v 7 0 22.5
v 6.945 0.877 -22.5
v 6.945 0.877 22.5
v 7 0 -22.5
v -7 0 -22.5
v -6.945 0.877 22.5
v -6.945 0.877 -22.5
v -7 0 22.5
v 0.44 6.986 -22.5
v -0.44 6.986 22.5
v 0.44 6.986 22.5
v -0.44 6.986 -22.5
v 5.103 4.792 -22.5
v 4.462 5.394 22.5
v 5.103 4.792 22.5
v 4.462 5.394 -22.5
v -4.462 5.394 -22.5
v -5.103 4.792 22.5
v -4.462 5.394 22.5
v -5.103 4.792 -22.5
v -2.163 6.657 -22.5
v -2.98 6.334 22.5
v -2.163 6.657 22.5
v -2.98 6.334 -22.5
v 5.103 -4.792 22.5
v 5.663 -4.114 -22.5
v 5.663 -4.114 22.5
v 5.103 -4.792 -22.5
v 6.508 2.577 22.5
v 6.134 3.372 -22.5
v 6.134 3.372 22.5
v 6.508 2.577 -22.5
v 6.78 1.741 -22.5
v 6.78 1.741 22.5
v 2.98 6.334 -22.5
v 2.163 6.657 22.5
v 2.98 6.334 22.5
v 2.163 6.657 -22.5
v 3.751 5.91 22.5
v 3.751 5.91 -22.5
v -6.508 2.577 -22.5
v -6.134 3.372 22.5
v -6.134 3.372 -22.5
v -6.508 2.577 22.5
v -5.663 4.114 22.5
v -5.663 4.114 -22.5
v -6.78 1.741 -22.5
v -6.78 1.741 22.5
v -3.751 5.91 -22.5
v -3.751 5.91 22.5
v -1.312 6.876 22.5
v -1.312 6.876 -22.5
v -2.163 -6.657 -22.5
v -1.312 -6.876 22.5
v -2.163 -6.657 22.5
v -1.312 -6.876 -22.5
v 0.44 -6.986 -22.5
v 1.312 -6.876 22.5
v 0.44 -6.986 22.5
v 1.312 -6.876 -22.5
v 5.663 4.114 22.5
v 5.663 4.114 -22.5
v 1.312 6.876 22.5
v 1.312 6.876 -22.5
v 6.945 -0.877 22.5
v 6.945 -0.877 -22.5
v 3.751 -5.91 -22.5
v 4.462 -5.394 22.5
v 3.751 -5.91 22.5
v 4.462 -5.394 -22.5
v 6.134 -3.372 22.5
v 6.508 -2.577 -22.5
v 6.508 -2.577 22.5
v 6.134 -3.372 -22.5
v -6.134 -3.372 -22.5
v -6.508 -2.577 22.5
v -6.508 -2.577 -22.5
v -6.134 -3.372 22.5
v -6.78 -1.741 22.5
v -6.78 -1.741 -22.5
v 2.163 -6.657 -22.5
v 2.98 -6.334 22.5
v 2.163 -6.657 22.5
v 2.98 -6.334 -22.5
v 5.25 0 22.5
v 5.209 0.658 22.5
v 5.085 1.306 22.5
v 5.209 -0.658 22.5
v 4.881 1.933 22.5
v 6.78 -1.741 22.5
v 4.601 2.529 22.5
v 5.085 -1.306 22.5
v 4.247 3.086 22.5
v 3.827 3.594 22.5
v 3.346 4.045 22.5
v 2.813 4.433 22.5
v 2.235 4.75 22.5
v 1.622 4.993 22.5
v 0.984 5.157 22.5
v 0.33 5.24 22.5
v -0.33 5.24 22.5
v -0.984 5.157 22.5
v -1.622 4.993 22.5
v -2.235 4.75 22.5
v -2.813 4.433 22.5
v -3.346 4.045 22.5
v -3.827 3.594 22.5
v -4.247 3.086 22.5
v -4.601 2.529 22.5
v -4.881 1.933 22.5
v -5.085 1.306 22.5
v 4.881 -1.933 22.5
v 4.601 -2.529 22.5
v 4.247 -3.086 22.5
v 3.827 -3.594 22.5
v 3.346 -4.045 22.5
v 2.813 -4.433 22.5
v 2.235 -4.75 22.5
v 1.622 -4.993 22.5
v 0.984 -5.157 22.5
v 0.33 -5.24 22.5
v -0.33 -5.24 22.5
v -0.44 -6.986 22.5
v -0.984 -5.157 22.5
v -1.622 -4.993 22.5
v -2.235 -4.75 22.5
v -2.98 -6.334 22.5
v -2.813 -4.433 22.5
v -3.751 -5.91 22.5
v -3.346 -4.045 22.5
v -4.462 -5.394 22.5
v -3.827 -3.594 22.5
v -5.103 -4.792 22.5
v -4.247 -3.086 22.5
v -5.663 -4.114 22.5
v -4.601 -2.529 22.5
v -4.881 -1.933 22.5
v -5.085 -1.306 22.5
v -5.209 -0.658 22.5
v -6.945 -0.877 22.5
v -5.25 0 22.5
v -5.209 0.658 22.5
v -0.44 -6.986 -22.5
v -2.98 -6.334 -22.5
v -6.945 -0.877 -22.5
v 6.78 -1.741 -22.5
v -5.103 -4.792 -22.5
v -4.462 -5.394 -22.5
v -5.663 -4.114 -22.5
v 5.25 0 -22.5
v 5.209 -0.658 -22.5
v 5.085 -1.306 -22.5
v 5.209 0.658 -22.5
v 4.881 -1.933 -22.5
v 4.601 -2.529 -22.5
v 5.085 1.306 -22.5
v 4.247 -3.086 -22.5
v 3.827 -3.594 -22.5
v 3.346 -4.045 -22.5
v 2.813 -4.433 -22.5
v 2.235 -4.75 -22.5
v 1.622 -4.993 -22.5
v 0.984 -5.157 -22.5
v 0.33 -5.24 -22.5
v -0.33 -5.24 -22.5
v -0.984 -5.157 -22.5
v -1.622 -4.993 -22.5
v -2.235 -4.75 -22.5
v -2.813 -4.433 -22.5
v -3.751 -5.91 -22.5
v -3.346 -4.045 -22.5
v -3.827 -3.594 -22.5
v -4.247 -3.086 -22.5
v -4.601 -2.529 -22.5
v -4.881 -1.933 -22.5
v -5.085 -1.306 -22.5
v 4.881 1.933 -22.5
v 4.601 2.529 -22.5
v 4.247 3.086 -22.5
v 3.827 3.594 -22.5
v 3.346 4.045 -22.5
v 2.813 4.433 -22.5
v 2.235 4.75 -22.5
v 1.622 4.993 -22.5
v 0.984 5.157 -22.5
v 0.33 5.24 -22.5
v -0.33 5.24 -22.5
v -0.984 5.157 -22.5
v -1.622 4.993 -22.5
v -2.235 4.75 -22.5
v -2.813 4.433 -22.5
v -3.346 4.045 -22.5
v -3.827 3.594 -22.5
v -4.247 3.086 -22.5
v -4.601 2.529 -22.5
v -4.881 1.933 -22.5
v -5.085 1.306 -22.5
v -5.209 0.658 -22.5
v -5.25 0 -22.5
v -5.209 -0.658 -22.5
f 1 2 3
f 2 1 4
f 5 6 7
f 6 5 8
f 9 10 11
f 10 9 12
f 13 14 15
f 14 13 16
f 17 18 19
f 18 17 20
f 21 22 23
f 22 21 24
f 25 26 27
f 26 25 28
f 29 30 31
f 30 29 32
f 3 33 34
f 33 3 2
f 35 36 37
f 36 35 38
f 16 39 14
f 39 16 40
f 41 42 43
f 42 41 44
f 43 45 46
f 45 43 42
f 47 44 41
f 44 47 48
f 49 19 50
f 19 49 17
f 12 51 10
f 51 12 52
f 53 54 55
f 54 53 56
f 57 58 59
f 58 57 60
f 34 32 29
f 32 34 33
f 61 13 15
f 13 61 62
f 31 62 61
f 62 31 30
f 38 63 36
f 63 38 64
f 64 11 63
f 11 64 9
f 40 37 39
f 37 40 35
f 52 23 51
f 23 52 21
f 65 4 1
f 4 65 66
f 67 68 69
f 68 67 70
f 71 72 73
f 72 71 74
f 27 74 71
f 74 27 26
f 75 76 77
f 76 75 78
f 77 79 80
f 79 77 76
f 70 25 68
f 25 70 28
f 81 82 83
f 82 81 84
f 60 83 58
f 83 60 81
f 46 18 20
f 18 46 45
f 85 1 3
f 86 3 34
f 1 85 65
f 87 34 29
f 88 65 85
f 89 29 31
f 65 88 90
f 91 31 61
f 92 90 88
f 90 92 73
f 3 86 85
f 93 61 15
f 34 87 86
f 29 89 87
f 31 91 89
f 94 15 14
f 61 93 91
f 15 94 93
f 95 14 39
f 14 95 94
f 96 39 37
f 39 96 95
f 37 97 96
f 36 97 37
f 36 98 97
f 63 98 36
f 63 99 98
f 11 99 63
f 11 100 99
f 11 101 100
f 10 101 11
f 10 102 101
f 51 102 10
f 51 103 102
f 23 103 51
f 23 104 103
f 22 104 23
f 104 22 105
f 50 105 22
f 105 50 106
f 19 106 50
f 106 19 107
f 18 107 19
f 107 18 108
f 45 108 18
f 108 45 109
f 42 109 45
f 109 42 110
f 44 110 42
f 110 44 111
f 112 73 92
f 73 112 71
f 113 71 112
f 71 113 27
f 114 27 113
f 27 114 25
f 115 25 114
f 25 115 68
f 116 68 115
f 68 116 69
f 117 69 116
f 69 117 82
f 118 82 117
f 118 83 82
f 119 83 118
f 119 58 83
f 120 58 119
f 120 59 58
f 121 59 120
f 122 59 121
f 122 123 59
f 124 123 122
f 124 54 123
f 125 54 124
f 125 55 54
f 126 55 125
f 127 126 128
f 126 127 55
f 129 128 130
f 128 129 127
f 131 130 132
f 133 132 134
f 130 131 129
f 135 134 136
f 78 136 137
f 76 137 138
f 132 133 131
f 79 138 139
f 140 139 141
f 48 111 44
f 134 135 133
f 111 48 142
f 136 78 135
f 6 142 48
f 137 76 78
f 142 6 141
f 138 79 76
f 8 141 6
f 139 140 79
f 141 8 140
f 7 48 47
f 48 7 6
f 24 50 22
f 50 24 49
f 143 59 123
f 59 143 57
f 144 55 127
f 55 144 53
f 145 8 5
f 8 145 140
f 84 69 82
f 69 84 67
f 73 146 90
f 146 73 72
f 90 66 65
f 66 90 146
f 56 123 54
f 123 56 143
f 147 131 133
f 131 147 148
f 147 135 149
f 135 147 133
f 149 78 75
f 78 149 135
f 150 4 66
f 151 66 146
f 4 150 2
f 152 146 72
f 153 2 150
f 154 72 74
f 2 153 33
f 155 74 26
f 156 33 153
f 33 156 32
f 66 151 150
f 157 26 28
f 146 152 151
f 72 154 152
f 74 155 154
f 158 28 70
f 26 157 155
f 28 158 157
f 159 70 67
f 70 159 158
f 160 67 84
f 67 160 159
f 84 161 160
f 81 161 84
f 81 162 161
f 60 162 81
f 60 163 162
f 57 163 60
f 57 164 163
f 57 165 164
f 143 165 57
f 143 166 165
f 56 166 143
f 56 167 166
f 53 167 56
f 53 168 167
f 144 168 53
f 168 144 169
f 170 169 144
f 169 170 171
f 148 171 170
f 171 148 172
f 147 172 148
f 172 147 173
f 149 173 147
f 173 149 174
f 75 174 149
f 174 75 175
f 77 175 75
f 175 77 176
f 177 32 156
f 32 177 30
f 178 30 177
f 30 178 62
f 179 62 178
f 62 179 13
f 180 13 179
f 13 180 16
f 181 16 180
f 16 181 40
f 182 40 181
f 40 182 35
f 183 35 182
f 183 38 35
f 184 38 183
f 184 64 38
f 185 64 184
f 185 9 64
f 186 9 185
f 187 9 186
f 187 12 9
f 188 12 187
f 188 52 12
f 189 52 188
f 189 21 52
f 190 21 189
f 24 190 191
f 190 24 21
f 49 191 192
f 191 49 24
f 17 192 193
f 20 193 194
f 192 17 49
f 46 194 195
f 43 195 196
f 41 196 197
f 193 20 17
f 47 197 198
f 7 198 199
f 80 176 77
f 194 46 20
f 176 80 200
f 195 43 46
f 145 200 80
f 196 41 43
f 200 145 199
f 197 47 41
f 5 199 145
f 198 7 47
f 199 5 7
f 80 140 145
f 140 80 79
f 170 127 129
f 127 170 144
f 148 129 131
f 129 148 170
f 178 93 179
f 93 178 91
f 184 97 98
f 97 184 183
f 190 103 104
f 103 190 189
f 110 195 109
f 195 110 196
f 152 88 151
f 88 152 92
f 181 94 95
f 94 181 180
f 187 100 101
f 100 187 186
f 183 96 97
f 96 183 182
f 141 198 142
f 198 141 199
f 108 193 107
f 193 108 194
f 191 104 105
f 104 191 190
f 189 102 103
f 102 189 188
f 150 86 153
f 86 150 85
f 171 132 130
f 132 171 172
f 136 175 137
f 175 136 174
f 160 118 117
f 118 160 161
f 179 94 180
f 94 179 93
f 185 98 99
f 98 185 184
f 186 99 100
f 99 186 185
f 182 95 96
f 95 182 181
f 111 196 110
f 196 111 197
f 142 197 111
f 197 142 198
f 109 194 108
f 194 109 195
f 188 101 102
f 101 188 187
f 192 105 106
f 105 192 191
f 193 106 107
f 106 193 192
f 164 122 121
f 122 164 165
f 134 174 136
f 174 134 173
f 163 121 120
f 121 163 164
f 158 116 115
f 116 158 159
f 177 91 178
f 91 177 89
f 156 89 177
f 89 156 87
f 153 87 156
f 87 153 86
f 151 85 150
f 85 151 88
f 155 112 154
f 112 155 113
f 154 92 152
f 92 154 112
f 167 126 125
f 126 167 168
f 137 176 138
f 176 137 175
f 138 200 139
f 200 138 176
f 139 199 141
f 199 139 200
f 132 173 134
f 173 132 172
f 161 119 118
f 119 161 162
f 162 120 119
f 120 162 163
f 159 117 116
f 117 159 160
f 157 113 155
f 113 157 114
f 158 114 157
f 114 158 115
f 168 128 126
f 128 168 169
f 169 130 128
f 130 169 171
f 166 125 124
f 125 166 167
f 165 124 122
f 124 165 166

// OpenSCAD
$fn = 50;


difference() {
	union() {
		translate(v = [0, 0, -22.5000000000]) {
			cylinder(h = 45, r = 7.0000000000);
		}
	}
	union() {
		translate(v = [0, 0, -100.0000000000]) {
			cylinder(h = 200, r = 5.2500000000);
		}
	}
}
